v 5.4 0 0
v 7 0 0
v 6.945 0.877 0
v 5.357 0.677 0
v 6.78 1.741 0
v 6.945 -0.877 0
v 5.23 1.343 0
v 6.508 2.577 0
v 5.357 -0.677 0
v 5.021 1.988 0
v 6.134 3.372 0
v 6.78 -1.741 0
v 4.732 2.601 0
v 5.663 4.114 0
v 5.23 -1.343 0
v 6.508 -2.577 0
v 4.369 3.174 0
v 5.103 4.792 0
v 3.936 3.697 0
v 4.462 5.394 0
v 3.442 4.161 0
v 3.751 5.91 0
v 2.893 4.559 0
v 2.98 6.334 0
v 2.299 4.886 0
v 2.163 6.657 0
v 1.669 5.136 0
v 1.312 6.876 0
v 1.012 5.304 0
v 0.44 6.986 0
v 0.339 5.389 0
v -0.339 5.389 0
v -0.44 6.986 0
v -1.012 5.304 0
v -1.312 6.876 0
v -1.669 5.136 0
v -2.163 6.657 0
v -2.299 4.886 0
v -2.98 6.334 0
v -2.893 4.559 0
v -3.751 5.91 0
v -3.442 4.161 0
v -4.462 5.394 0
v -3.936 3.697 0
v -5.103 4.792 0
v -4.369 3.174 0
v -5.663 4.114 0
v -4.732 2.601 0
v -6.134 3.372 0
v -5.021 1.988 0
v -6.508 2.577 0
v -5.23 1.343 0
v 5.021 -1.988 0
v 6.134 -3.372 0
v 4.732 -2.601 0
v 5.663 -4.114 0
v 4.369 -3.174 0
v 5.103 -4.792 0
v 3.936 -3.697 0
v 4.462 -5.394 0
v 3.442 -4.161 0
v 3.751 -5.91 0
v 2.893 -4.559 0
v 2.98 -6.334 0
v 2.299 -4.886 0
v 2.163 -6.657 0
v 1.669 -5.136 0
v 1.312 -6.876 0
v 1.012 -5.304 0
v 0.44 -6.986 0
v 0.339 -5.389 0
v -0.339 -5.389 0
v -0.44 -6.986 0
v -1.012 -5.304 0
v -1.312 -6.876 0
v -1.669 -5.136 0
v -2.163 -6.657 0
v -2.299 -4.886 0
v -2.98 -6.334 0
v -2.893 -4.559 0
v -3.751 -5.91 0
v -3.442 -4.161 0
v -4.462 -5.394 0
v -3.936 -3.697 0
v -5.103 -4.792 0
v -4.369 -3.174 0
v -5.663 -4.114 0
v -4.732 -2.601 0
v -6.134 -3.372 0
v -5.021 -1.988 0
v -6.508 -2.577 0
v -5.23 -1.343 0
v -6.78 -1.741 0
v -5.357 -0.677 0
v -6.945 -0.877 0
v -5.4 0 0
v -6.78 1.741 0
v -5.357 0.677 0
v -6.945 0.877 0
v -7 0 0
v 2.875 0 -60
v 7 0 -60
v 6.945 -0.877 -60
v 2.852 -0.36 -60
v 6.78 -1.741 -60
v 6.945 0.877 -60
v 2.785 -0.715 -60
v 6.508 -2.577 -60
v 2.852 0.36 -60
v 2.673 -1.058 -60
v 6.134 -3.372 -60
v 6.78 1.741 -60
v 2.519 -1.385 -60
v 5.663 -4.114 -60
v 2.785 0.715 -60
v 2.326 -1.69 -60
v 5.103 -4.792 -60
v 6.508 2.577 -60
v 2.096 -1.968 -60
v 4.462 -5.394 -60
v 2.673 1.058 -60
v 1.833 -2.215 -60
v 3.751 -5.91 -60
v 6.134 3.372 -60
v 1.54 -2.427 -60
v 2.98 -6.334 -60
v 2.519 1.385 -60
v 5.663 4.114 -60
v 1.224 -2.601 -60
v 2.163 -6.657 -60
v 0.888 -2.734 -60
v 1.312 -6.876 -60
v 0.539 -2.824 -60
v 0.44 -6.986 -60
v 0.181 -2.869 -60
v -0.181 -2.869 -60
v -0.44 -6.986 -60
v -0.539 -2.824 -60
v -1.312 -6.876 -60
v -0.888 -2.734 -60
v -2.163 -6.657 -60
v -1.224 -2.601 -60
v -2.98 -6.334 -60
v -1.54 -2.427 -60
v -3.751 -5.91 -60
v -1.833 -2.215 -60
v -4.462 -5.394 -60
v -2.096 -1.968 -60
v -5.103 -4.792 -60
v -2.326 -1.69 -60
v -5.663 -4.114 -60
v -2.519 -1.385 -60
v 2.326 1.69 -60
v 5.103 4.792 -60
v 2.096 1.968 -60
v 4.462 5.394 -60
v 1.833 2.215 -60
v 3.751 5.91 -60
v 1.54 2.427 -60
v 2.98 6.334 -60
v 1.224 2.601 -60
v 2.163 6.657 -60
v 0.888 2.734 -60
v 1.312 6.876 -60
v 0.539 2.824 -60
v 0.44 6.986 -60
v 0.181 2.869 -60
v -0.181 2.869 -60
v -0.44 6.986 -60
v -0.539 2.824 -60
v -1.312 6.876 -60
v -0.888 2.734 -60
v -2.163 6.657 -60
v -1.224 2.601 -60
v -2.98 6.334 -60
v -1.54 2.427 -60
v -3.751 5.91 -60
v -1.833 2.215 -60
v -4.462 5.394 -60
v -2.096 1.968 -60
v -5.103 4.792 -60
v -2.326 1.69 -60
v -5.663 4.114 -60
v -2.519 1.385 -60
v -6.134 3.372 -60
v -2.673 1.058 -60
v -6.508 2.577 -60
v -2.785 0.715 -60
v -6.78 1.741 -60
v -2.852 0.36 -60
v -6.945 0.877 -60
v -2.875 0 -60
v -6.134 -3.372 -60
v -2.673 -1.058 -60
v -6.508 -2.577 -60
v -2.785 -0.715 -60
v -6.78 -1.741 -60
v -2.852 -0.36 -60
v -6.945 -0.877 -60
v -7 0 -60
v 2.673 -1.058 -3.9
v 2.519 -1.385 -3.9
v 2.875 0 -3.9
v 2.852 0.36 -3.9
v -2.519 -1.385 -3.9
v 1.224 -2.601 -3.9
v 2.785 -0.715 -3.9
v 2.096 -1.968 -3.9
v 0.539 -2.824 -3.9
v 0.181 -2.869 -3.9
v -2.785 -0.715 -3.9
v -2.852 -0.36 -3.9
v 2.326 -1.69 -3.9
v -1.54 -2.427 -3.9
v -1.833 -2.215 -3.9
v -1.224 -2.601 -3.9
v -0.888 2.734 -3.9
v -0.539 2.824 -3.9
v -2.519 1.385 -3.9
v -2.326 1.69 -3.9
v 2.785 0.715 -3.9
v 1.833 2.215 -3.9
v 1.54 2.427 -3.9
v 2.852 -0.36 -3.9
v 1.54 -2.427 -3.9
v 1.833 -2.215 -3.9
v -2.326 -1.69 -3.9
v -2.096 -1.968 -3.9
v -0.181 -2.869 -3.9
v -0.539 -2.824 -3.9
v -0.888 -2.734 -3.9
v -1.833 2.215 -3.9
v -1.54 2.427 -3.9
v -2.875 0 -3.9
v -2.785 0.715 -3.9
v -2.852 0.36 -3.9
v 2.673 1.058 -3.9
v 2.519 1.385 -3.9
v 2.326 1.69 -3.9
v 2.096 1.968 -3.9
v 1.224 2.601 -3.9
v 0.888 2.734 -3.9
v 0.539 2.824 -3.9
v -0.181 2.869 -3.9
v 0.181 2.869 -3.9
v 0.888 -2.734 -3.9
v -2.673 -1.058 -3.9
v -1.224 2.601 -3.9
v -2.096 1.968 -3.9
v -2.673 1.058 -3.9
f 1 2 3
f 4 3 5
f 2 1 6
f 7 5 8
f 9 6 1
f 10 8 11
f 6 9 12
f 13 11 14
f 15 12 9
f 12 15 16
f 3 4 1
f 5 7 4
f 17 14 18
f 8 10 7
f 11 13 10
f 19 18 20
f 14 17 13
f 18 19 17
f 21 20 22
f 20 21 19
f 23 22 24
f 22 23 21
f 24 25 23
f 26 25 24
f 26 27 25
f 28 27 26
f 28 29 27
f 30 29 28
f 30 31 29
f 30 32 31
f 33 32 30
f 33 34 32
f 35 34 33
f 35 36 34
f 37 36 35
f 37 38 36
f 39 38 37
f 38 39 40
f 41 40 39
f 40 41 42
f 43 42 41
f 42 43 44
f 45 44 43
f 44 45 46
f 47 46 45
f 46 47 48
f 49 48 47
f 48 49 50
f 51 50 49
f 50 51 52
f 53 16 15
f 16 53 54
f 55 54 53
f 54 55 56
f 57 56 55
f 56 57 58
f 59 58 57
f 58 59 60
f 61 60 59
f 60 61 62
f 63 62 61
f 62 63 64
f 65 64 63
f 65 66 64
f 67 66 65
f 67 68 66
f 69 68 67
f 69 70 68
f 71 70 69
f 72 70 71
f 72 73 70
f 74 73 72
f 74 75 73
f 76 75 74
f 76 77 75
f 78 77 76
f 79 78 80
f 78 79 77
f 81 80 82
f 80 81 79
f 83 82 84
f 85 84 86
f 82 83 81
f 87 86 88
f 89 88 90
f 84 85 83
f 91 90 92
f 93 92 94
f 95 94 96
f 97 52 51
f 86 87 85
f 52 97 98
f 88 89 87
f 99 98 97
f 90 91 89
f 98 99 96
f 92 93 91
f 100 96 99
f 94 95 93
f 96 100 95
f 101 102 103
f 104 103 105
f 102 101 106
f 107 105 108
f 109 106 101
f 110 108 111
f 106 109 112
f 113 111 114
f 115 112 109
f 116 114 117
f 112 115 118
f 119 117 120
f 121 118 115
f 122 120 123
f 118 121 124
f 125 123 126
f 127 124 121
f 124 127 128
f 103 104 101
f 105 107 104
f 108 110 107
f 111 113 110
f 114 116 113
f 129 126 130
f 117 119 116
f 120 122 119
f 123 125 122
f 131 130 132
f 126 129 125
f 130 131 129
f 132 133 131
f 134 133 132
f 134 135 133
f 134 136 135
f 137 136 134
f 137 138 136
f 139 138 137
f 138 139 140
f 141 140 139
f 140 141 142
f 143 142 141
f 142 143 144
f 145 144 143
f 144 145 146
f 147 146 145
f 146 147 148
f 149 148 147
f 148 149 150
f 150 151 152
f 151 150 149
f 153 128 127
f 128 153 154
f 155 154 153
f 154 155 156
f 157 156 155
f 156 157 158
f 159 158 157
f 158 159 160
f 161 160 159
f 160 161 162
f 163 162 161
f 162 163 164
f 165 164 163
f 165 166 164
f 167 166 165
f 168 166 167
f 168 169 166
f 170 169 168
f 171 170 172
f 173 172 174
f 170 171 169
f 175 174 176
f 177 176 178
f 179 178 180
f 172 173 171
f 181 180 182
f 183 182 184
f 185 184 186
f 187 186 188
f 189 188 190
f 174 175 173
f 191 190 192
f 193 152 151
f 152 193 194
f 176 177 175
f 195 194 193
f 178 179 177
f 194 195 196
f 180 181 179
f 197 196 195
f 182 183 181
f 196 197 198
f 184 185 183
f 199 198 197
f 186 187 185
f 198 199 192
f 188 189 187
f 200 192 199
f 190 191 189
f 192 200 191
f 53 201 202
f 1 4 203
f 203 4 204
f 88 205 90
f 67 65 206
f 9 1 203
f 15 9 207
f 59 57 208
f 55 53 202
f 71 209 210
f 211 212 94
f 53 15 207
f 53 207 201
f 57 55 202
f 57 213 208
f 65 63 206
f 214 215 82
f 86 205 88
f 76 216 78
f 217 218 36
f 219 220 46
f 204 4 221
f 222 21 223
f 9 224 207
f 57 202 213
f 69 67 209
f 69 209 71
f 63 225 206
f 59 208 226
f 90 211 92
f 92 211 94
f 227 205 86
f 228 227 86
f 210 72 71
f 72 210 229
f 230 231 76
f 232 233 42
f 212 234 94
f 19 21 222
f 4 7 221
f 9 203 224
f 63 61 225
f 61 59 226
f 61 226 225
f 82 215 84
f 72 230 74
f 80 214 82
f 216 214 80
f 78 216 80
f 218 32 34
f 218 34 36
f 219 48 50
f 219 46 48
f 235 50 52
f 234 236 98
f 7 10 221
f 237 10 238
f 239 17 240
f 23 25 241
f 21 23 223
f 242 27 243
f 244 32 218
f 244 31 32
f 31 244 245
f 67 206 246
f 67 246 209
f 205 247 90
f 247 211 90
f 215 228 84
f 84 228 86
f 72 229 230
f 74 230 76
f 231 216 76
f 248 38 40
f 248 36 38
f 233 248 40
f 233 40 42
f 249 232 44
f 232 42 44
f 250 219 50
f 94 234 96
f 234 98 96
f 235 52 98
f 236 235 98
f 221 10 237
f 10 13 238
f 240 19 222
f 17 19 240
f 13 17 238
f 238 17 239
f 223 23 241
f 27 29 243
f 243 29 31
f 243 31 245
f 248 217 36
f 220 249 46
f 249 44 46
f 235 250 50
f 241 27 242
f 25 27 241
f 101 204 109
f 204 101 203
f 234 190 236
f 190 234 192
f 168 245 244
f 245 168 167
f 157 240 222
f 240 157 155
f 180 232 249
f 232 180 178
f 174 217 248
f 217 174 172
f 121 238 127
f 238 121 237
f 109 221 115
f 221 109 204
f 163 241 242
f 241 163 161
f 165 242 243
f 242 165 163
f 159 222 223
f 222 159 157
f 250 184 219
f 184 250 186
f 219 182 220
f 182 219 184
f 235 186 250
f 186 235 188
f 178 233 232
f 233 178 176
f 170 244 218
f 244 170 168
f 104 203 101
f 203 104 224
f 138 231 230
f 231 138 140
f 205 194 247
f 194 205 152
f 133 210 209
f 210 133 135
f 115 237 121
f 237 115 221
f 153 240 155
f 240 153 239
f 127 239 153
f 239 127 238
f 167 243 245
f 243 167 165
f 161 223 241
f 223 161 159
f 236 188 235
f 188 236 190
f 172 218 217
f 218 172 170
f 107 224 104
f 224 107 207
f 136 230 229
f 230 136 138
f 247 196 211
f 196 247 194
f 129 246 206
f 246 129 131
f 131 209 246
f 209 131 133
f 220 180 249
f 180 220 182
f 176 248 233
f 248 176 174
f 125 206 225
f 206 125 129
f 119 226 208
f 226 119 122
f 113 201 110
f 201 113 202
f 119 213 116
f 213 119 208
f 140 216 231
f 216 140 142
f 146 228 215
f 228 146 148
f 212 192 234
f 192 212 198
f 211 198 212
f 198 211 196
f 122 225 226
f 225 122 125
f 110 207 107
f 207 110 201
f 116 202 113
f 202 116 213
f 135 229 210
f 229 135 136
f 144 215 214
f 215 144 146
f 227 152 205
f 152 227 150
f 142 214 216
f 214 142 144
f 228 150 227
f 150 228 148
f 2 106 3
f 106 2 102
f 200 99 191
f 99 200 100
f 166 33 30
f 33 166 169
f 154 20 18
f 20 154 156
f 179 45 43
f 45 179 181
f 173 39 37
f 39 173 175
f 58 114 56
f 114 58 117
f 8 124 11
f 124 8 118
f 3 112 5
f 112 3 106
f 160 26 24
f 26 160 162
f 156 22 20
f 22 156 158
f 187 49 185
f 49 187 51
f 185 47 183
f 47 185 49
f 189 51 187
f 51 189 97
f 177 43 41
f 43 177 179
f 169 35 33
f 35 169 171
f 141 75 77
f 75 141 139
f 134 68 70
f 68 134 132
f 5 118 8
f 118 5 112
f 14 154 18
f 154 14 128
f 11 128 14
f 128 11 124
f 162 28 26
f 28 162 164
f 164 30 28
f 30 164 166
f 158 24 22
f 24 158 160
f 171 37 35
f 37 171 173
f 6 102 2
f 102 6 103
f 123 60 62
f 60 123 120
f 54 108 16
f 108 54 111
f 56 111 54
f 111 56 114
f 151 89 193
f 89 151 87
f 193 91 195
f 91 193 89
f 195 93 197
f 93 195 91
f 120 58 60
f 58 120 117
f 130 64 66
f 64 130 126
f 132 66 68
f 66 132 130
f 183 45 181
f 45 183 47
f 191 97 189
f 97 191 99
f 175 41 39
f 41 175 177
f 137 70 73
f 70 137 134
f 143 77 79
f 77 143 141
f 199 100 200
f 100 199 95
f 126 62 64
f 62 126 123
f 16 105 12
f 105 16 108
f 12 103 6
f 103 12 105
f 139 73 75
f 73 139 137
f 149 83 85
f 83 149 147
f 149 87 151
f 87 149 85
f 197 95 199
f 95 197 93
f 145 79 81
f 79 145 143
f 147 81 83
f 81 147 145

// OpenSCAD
$fn = 50;


difference() {
	union() {
		translate(v = [0, 0, -60.0000000000]) {
			cylinder(h = 60, r = 7.0000000000);
		}
		cylinder(h = 0, r = 13.0000000000);
	}
	union() {
		translate(v = [0, 0, 0]) {
			rotate(a = [0, 0, 0]) {
				difference() {
					union() {
						#translate(v = [0, 0, -60.0000000000]) {
							cylinder(h = 60, r = 2.6000000000);
						}
						#translate(v = [0, 0, -3.9000000000]) {
							cylinder(h = 3.9000000000, r1 = 2.8750000000, r2 = 5.4000000000);
						}
						#translate(v = [0, 0, -60.0000000000]) {
							cylinder(h = 60, r = 2.8750000000);
						}
						#translate(v = [0, 0, -60.0000000000]) {
							cylinder(h = 60, r = 2.6000000000);
						}
					}
					union();
				}
			}
		}
	}
}
